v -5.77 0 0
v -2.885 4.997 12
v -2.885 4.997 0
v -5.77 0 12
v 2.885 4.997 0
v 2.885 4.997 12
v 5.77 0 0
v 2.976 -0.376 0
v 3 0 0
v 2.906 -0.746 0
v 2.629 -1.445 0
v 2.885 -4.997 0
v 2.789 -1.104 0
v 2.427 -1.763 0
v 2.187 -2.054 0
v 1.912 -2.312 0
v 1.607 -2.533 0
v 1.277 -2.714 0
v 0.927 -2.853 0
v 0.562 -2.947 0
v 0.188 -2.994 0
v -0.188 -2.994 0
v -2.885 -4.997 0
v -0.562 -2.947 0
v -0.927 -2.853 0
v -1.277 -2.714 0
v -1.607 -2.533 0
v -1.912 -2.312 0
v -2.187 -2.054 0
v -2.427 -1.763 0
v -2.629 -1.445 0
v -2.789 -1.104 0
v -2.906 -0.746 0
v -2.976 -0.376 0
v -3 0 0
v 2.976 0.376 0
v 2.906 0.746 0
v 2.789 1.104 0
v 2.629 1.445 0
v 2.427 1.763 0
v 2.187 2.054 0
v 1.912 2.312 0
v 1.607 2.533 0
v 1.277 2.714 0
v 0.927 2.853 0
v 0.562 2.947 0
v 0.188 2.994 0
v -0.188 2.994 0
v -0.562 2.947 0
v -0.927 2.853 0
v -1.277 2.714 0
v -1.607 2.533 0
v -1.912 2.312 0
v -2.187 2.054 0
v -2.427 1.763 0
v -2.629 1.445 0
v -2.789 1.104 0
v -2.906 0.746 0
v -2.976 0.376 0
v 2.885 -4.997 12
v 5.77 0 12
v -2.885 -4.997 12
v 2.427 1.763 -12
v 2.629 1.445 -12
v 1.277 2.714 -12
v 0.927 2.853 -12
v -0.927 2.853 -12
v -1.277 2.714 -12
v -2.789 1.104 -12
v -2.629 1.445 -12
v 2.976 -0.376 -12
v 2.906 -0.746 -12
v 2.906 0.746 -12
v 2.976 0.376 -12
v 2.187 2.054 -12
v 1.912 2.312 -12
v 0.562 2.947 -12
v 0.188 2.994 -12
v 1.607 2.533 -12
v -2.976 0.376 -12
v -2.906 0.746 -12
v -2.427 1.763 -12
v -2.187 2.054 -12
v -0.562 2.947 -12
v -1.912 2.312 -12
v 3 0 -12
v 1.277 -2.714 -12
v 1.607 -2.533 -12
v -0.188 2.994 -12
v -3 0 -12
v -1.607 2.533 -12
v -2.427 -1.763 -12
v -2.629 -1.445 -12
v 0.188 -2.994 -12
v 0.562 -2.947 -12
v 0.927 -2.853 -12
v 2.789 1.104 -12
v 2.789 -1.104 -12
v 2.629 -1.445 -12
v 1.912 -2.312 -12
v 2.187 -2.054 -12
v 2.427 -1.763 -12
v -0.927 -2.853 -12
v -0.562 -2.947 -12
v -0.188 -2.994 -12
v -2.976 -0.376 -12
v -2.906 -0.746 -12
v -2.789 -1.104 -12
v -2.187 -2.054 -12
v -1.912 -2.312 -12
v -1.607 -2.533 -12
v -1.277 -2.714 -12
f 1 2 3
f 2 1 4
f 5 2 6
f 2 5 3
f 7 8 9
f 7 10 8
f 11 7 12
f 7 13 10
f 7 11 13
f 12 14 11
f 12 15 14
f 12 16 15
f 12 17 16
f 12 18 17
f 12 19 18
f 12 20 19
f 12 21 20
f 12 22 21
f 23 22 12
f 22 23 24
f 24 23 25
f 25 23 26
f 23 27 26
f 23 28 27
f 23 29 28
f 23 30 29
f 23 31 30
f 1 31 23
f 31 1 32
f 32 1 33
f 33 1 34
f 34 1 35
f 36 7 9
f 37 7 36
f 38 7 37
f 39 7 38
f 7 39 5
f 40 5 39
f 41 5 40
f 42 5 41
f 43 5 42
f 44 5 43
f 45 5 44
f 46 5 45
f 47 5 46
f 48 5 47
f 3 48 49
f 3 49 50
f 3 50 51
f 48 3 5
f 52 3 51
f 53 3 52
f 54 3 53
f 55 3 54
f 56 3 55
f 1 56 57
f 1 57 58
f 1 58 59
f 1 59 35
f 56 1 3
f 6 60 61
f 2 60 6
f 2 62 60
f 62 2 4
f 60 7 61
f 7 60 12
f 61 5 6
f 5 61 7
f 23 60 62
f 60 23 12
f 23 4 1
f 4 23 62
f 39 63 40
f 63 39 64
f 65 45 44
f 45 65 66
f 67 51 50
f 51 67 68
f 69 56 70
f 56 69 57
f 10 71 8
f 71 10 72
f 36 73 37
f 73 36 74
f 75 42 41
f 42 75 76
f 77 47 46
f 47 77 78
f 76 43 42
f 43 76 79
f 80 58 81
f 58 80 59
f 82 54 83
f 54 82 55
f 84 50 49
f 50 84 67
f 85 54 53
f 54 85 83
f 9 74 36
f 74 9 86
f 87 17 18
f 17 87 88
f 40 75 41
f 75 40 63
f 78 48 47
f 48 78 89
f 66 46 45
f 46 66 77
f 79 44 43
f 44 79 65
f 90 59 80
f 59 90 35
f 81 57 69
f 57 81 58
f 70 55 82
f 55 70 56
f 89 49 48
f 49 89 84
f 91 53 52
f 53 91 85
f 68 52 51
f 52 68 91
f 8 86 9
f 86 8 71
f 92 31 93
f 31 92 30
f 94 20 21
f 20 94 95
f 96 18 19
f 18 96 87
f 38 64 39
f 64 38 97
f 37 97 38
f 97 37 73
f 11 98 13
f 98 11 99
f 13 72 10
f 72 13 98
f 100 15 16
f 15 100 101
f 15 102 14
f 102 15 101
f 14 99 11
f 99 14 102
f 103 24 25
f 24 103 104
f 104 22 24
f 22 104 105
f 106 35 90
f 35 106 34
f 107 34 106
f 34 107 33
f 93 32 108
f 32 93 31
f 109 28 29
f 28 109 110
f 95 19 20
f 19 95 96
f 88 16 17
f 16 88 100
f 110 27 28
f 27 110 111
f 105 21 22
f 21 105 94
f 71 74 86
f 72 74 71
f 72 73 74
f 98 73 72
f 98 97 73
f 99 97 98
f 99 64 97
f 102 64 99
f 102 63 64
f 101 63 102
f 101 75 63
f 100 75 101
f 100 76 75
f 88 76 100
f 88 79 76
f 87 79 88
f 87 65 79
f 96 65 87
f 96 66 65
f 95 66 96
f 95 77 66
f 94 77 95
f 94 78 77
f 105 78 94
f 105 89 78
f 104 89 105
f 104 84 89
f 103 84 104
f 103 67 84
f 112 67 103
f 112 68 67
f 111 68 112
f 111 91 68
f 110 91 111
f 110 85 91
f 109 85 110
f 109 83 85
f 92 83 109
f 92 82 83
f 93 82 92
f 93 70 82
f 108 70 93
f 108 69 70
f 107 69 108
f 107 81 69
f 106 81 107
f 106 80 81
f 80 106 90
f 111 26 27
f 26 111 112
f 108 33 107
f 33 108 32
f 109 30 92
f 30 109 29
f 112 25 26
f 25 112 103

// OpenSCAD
$fn = 50;


difference() {
	union() {
		linear_extrude(height = 12) {
			polygon(points = [[5.7700000000, 0.0000000000], [2.8850000000, 4.9969665798], [-2.8850000000, 4.9969665798], [-5.7700000000, 0.0000000000], [-2.8850000000, -4.9969665798], [2.8850000000, -4.9969665798]]);
		}
		translate(v = [0, 0, -12]) {
			cylinder(h = 12, r = 3.0000000000);
		}
	}
	union();
}
